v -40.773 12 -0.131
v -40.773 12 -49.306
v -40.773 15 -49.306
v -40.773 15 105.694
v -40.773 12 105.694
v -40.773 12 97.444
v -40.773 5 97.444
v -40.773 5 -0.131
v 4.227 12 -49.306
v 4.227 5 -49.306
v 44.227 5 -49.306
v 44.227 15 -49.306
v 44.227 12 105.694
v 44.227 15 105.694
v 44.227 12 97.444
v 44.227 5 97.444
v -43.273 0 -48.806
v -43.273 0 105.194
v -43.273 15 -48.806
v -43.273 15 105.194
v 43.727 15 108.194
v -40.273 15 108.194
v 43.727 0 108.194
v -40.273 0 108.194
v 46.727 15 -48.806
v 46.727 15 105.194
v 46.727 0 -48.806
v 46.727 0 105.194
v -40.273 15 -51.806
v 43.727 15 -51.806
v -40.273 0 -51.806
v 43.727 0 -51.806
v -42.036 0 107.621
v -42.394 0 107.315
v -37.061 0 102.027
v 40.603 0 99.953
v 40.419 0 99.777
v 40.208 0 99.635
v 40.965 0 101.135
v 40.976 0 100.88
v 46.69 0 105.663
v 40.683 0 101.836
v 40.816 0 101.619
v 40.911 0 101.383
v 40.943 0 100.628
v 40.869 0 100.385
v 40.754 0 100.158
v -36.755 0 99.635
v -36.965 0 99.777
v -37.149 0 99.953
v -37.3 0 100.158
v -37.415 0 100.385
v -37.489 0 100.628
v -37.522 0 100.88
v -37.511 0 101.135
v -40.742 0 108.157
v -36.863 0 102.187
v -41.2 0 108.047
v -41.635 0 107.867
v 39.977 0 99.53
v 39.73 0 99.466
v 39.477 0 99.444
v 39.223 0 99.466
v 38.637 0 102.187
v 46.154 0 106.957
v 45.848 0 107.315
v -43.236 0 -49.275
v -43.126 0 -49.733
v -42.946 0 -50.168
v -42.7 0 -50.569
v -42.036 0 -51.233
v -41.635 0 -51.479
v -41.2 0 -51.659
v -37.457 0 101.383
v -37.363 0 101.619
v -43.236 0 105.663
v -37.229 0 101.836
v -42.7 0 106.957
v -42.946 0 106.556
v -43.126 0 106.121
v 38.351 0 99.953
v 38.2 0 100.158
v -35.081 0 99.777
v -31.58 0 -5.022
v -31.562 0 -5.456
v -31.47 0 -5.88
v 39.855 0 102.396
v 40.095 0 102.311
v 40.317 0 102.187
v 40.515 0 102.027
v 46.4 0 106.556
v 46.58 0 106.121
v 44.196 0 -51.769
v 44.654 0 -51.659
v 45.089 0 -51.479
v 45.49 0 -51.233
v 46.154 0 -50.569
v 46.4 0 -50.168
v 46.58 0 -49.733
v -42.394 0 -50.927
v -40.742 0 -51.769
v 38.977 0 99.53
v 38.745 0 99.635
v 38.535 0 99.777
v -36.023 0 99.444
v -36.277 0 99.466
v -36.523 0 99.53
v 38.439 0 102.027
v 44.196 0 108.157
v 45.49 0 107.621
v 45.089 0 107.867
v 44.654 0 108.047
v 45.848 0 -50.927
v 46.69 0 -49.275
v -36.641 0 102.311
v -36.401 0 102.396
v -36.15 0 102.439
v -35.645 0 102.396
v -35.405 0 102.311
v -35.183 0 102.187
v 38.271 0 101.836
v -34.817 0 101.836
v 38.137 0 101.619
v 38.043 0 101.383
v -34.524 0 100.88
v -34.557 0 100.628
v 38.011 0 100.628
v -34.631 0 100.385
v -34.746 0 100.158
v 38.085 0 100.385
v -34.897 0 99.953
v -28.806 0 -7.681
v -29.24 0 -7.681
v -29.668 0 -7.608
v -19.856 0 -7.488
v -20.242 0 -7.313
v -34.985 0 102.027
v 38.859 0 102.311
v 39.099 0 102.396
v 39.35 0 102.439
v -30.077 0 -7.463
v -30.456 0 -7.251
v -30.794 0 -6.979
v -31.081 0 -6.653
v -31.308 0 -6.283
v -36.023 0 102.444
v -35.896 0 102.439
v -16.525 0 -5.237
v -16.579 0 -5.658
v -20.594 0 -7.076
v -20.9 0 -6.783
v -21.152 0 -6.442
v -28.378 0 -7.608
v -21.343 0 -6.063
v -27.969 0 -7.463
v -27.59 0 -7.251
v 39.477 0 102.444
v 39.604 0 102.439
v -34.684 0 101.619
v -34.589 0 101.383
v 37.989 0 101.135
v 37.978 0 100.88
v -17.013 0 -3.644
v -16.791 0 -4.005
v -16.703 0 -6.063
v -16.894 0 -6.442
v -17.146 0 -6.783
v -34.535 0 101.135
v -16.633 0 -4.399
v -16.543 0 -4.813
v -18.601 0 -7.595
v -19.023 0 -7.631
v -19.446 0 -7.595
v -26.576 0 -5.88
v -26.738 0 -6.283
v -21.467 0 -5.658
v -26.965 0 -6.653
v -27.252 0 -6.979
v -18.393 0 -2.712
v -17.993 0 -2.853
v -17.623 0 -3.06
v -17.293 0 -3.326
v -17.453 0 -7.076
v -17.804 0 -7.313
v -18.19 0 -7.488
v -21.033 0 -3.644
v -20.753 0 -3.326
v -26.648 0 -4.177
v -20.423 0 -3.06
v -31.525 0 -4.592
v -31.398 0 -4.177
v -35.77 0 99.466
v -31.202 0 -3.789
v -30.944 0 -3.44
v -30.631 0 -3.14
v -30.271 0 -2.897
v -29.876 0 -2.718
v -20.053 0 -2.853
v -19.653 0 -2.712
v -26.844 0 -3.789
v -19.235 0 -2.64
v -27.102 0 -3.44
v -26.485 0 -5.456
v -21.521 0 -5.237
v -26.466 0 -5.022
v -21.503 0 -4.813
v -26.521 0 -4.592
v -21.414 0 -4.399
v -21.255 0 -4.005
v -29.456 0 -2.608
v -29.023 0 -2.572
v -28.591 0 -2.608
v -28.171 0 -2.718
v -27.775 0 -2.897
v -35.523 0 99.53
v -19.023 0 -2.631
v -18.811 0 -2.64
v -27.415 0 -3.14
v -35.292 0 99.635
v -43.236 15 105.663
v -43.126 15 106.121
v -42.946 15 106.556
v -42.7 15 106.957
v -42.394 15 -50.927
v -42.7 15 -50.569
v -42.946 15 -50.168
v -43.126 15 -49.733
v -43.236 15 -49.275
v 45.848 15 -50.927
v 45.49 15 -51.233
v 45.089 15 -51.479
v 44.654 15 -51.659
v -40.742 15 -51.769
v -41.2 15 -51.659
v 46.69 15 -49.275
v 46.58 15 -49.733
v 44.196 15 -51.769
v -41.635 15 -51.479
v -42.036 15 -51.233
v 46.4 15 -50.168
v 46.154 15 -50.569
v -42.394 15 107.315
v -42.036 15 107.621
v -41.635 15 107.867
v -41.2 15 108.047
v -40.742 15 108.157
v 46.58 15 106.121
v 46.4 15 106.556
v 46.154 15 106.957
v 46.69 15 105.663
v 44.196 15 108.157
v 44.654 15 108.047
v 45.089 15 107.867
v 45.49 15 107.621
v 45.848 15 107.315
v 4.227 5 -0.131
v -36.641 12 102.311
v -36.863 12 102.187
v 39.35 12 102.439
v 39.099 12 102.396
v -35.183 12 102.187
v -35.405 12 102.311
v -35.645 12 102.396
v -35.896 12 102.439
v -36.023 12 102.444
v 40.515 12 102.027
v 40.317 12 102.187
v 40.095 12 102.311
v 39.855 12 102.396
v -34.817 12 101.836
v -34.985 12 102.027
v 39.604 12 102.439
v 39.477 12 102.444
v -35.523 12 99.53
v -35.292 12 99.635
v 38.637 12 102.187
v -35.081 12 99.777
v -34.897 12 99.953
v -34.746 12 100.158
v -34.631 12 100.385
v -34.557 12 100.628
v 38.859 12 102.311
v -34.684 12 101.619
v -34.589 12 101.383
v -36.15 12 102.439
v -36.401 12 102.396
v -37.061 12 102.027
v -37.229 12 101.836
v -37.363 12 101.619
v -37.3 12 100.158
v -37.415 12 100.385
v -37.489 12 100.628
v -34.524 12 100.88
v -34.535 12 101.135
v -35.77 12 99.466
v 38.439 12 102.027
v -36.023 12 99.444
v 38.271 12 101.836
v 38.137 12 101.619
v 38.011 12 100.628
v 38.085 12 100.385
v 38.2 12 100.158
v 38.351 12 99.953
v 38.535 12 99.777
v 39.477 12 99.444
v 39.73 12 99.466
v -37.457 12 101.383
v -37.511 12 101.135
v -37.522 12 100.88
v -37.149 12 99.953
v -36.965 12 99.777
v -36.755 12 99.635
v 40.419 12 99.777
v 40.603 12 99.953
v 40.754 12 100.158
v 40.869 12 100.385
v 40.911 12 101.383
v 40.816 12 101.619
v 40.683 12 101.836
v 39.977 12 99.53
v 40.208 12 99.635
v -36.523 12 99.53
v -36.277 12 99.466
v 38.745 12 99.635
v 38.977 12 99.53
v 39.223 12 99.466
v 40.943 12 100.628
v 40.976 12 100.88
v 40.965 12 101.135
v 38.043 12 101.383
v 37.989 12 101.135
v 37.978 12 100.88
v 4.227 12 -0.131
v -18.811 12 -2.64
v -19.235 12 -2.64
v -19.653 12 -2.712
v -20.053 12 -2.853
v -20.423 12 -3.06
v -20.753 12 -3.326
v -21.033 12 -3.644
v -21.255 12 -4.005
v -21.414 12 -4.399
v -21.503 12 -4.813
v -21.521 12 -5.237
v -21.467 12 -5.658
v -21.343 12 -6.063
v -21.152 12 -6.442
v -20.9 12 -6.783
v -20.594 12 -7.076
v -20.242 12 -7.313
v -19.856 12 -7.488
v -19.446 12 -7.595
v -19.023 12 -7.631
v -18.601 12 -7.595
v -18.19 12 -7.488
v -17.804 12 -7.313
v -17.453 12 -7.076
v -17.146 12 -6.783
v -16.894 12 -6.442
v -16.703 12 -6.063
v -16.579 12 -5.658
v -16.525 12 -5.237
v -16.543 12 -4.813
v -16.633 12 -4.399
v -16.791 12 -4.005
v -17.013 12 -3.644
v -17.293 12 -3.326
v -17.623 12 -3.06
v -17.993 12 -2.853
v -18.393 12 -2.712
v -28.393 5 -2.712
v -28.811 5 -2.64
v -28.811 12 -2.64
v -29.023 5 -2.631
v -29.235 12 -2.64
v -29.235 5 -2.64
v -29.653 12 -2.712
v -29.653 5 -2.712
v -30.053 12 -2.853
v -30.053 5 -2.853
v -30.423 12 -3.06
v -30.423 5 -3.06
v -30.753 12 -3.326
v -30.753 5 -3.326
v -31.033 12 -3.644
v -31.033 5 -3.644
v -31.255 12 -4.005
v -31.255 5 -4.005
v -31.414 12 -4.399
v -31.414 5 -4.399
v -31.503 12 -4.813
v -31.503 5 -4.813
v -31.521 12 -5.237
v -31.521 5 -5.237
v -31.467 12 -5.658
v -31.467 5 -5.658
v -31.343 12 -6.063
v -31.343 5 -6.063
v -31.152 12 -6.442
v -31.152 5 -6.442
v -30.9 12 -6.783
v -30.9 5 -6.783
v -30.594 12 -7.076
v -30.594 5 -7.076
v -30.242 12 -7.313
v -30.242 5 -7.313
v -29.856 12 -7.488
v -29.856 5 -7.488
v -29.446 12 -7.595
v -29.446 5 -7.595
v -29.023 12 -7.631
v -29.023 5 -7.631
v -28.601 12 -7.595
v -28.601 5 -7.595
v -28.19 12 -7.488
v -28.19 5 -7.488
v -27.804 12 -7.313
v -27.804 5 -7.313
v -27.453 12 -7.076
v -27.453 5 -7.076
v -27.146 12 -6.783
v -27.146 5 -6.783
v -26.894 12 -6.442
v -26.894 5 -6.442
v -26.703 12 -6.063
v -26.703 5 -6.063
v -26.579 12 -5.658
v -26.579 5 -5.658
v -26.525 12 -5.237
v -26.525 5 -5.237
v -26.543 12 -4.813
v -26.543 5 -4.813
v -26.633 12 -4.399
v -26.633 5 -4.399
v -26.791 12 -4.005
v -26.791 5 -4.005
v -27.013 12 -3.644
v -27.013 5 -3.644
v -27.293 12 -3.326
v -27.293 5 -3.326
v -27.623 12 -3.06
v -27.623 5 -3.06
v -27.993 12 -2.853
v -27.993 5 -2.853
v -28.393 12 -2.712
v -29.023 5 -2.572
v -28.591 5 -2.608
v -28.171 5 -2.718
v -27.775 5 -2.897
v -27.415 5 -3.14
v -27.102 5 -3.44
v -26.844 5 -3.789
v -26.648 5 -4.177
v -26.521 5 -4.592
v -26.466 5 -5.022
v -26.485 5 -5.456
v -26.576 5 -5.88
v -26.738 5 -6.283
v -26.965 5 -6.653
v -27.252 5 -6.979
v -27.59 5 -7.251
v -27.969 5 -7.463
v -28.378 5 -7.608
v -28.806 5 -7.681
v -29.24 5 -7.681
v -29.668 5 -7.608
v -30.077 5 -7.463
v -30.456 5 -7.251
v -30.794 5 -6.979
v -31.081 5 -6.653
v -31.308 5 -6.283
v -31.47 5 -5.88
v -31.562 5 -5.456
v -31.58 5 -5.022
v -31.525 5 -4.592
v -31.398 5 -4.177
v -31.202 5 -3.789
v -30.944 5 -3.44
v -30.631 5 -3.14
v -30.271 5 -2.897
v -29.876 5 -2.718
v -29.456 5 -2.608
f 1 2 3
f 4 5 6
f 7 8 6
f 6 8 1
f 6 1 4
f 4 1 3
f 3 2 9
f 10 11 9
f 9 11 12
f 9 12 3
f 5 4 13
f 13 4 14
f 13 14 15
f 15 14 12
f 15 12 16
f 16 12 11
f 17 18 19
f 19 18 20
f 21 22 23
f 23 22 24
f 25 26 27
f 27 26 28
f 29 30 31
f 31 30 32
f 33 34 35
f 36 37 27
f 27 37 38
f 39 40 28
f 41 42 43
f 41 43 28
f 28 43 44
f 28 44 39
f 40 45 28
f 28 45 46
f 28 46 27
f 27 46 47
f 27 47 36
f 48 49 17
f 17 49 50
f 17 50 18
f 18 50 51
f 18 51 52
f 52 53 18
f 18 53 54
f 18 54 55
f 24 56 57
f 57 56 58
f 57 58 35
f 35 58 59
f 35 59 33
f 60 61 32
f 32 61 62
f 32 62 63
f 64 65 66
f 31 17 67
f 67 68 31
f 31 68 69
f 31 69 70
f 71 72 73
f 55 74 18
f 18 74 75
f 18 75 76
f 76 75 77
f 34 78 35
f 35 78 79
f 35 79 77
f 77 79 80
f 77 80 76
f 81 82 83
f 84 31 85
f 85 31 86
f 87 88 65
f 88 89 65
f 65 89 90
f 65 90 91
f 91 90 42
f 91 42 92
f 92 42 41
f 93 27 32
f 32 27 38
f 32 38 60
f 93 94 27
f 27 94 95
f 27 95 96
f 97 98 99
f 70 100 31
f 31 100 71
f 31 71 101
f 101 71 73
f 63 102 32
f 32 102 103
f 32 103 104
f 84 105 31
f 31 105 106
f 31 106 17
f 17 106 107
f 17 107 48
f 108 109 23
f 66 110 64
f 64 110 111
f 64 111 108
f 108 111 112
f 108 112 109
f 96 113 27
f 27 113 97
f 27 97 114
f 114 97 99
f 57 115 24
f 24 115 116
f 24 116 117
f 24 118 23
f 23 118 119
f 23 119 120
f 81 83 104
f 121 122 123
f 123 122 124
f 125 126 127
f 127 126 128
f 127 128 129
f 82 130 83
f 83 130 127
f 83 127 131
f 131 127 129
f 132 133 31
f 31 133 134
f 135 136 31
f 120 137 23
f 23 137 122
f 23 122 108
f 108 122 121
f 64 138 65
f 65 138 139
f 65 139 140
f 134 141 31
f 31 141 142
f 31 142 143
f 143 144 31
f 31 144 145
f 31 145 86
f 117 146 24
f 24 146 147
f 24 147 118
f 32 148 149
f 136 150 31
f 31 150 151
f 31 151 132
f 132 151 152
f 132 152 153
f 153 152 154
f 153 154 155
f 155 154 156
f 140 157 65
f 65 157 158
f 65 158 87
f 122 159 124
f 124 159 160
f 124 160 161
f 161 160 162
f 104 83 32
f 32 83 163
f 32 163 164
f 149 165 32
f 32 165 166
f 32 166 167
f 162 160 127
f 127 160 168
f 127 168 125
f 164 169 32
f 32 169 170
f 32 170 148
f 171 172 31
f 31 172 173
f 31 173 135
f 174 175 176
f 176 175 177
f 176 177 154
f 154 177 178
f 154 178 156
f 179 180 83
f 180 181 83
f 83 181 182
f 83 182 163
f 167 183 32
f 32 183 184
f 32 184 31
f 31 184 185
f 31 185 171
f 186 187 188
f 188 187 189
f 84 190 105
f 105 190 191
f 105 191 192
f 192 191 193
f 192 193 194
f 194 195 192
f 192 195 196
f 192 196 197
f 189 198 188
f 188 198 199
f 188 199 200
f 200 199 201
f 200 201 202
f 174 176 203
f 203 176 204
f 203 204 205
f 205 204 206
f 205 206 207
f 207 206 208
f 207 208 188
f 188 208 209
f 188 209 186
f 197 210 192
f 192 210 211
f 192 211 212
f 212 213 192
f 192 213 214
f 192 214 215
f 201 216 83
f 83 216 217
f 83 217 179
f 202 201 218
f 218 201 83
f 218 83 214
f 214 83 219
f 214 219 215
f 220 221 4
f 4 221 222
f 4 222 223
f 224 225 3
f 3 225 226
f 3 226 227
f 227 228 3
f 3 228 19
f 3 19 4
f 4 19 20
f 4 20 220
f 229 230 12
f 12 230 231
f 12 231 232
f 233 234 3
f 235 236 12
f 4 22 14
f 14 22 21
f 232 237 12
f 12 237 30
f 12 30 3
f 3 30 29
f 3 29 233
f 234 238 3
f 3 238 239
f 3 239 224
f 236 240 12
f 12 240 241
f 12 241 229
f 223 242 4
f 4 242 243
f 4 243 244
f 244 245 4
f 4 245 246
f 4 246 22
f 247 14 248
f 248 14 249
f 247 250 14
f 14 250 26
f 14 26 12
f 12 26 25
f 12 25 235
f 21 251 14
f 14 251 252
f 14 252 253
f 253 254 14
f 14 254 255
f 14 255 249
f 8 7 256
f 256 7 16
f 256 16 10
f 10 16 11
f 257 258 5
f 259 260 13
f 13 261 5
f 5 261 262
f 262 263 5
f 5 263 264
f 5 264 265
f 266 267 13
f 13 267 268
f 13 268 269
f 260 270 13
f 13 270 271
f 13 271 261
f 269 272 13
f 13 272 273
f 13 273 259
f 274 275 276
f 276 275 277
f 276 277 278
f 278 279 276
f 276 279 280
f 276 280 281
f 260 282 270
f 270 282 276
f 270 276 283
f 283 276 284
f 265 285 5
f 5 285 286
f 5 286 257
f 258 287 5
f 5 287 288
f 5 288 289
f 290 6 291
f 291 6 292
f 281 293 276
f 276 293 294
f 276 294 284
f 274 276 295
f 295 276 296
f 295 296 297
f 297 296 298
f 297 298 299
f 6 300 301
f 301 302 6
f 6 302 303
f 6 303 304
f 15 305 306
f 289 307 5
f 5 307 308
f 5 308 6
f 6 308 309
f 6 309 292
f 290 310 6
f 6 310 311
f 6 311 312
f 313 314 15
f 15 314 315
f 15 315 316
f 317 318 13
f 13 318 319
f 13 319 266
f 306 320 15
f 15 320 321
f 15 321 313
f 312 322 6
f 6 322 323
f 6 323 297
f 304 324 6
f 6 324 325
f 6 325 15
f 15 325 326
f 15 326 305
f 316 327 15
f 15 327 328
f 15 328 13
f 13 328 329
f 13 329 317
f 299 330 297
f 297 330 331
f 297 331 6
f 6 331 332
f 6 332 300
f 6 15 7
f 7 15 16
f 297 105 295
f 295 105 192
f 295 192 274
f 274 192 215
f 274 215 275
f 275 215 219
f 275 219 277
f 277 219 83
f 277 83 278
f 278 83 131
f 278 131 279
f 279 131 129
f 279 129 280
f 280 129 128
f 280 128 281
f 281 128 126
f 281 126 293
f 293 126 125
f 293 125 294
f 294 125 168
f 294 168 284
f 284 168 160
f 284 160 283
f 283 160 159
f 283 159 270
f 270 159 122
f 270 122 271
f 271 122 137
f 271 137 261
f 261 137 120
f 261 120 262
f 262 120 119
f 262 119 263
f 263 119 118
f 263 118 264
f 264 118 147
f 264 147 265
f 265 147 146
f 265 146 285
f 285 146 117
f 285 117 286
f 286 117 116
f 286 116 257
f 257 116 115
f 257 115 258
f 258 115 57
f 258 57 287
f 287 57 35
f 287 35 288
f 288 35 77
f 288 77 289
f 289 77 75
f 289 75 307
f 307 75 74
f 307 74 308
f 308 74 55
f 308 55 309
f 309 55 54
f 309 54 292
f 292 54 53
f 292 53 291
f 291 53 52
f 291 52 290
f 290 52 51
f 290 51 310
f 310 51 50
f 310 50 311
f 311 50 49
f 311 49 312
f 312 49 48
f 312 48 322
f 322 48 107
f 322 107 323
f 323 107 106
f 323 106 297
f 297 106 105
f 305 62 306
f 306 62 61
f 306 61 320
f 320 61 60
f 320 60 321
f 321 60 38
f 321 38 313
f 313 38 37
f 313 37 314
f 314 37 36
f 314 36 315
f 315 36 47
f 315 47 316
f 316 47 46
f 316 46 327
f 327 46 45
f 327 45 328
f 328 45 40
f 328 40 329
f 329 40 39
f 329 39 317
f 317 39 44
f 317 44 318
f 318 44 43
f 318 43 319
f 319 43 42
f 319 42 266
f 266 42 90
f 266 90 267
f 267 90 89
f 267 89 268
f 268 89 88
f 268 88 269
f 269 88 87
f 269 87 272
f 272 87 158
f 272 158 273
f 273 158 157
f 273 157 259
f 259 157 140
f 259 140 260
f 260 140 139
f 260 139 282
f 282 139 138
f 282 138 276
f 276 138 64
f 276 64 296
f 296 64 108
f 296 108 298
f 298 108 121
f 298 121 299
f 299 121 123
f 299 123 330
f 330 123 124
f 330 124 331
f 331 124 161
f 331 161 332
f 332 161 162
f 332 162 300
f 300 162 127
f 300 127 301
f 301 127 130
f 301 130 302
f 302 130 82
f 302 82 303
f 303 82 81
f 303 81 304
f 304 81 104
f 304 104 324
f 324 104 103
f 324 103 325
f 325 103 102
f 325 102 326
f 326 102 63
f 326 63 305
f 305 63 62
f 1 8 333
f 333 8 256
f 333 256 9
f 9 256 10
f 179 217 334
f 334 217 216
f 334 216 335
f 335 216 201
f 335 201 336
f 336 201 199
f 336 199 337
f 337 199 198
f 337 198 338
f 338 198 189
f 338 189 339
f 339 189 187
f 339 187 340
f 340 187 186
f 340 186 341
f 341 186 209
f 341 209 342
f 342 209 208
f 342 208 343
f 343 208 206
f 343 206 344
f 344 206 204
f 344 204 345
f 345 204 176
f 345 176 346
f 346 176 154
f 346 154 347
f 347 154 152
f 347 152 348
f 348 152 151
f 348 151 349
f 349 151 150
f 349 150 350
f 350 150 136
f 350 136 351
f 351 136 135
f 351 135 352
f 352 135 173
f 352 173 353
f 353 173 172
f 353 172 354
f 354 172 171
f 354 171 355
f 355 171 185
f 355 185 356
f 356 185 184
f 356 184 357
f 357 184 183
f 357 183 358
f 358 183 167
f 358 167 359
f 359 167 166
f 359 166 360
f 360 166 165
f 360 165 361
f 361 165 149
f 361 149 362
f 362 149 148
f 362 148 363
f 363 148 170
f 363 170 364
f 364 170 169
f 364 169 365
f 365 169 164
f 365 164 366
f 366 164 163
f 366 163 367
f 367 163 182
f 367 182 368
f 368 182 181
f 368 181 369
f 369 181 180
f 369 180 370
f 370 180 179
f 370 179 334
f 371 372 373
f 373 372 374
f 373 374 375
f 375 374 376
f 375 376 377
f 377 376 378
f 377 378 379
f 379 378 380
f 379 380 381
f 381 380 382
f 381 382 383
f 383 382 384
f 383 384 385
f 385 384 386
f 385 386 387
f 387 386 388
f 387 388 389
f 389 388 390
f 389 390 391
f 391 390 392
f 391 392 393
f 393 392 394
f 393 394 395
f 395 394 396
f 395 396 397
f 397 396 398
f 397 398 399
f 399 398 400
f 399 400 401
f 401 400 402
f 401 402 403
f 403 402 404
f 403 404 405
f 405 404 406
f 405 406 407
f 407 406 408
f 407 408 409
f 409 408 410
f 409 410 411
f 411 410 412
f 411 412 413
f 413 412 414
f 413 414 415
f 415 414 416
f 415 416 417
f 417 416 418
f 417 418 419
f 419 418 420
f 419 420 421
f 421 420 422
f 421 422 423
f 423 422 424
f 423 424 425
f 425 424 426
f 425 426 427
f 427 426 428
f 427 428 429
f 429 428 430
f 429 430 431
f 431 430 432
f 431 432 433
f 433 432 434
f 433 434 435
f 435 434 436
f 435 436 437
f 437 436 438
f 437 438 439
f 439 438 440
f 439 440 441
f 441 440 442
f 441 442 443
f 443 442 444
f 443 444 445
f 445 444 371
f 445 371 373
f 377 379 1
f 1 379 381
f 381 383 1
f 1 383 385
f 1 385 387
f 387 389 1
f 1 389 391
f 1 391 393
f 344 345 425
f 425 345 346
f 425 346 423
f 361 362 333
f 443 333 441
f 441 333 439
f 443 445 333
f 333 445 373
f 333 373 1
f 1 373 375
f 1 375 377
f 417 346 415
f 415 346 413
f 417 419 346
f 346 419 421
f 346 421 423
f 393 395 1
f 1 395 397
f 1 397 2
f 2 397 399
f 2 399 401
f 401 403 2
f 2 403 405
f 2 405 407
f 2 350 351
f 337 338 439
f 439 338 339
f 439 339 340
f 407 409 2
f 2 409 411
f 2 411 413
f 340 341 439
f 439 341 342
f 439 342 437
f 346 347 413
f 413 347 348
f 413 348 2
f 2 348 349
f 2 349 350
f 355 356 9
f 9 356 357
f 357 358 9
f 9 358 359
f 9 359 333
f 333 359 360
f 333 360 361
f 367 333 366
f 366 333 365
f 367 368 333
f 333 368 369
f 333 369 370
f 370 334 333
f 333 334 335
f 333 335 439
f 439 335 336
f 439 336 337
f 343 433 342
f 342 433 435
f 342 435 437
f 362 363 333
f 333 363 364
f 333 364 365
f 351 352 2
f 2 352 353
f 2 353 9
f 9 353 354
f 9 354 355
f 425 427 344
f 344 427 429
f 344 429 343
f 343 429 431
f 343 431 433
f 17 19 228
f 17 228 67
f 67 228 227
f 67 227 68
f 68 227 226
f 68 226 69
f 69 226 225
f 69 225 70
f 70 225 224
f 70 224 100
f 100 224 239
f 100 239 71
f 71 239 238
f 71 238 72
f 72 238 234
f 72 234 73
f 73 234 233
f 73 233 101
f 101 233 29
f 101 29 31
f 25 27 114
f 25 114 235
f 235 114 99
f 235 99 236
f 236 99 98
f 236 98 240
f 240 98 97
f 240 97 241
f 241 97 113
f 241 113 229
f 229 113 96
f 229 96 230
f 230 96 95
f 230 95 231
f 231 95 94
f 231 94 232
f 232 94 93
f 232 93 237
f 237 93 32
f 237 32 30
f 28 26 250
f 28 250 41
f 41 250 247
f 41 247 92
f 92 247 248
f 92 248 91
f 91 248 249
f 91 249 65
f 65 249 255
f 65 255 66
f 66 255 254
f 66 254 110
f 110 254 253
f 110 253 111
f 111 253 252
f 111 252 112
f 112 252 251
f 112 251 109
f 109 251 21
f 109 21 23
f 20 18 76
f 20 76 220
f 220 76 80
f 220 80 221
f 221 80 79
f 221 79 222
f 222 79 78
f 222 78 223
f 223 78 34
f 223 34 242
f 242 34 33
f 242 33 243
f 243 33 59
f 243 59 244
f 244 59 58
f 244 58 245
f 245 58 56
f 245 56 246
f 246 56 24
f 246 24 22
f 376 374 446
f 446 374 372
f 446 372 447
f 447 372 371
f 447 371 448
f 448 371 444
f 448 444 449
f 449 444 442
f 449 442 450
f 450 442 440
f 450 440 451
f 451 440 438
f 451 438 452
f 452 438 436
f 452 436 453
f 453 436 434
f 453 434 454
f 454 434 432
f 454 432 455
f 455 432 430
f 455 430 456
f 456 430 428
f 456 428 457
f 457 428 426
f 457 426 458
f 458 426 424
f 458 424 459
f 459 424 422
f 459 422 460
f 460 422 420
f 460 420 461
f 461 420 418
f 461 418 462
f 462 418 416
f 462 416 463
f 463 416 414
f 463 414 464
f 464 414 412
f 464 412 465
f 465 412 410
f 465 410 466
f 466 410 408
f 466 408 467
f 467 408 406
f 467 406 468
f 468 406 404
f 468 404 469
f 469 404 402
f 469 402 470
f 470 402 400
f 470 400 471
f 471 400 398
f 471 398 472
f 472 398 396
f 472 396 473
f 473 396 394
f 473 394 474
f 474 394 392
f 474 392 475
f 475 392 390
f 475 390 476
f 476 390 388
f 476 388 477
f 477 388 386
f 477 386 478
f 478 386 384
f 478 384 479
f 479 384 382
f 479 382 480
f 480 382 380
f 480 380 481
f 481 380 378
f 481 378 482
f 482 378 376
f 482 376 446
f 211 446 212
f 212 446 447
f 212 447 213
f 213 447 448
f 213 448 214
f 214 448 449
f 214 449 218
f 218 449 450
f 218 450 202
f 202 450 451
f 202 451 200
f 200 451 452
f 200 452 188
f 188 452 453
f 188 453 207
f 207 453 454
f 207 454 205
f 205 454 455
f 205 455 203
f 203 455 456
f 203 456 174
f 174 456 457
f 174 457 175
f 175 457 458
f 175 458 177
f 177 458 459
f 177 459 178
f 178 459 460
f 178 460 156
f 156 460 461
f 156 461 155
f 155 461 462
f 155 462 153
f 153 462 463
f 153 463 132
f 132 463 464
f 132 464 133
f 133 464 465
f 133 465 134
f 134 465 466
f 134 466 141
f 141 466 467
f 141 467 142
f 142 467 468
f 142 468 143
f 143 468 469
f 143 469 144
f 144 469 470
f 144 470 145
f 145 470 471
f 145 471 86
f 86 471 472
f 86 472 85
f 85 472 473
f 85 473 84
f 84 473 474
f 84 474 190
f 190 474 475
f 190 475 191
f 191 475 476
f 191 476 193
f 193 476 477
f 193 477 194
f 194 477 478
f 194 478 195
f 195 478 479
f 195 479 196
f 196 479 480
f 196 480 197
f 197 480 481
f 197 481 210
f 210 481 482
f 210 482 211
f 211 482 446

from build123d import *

# Parameters (mm, degrees)
SKETCH1_W           = 90
SKETCH1_H           = 160
BOSS_EXTRUDE1_DEPTH = 5
SKETCH2_W           = 90
SKETCH2_H           = 160
SKETCH2_W_2         = 85
SKETCH2_H_2         = 155
BOSS_EXTRUDE2_DEPTH = 10
SKETCH3_W           = 85
SKETCH3_H           = 8.25
SKETCH3_R           = 1.5
BOSS_EXTRUDE3_DEPTH = 7
SKETCH4_W           = 45
SKETCH4_H           = 39.175
SKETCH4_H_2         = 10
SKETCH4_R           = 2.5
BOSS_EXTRUDE4_DEPTH = 7
FILLET1_R           = 3
SKETCH5_R           = 2.5
SKETCH5_R_2         = 2.55926668
SKETCH5_R_3         = 1.5
CUT_EXTRUDE1_DEPTH  = 119.276665608


with BuildPart() as part:
    # Sketch1 → Boss-Extrude1 (new body)
    with BuildSketch(Plane(origin=(0, 0, 0), x_dir=(1, 0, 0), z_dir=(0, 1, 0))):
        with Locations((1.726862302, -28.194130926)):
            Rectangle(SKETCH1_W, SKETCH1_H)
    extrude(amount=BOSS_EXTRUDE1_DEPTH)

    # Sketch2 → Boss-Extrude2 (add)
    with BuildSketch(Plane(origin=(0, 5, 0), x_dir=(1, 0, 0), z_dir=(0, 1, 0))):
        with Locations((1.726862302, -28.194130926)):
            Rectangle(SKETCH2_W, SKETCH2_H)
        with Locations((1.726862302, -28.194130926)):
            Rectangle(SKETCH2_W_2, SKETCH2_H_2, mode=Mode.SUBTRACT)
    extrude(amount=BOSS_EXTRUDE2_DEPTH)

    # Sketch3 → Boss-Extrude3 (add)
    with BuildSketch(Plane(origin=(0, 5, 0), x_dir=(1, 0, 0), z_dir=(0, 1, 0))):
        with Locations((1.726862302, -101.569130926)):
            Rectangle(SKETCH3_W, SKETCH3_H)
        with Locations(Location((-36.023137698, -100.944130926, 0), (0, 0, 270))):
            Circle(SKETCH3_R, mode=Mode.SUBTRACT)
        with Locations(Location((39.476862302, -100.944130926, 0), (0, 0, 270))):
            Circle(SKETCH3_R, mode=Mode.SUBTRACT)
    extrude(amount=BOSS_EXTRUDE3_DEPTH)

    # Sketch4 → Boss-Extrude4 (add)
    # profile 1 of 2: a face of its own
    with BuildSketch(Plane(origin=(0, 5, 0), x_dir=(1, 0, 0), z_dir=(0, 1, 0))):
        with Locations((-18.273137698, 29.718369074)):
            Rectangle(SKETCH4_W, SKETCH4_H)
    # profile 2 of 2: a face of its own
    with BuildSketch(Plane(origin=(0, 5, 0), x_dir=(1, 0, 0), z_dir=(0, 1, 0))):
        with Locations((-18.273137698, 5.130869074)):
            Rectangle(SKETCH4_W, SKETCH4_H_2)
        with Locations(Location((-29.023137698, 5.130869074, 0), (0, 0, 90))):
            Circle(SKETCH4_R, mode=Mode.SUBTRACT)
        with Locations(Location((-19.023137698, 5.130869074, 0), (0, 0, 90))):
            Circle(SKETCH4_R, mode=Mode.SUBTRACT)
    extrude(amount=BOSS_EXTRUDE4_DEPTH)

    # Fillet1
    fillet1_edges = [part.edges().sort_by_distance(p)[0] for p in [
        (-43.273137698, 7.5, -51.805869074),
        (46.726862302, 7.5, -51.805869074),
        (46.726862302, 7.5, 108.194130926),
        (-43.273137698, 7.5, 108.194130926),
    ]]
    fillet(fillet1_edges, radius=FILLET1_R)

    # Sketch5 → Cut-Extrude1 (cut, through all)
    with BuildSketch(Plane(origin=(0, 5, 0), x_dir=(1, 0, 0), z_dir=(0, 1, 0))):
        with Locations(Location((-19.023137698, 5.130869074, 0), (0, 0, 90))):
            Circle(SKETCH5_R)
        with Locations(Location((-29.023137698, 5.130869074, 0), (0, 0, 270))):
            Circle(SKETCH5_R_2)
        with Locations(Location((-36.023137698, -100.944130926, 0), (0, 0, 270))):
            Circle(SKETCH5_R_3)
        with Locations(Location((39.476862302, -100.944130926, 0), (0, 0, 270))):
            Circle(SKETCH5_R_3)
    extrude(amount=-CUT_EXTRUDE1_DEPTH, mode=Mode.SUBTRACT)


solid = part.part
